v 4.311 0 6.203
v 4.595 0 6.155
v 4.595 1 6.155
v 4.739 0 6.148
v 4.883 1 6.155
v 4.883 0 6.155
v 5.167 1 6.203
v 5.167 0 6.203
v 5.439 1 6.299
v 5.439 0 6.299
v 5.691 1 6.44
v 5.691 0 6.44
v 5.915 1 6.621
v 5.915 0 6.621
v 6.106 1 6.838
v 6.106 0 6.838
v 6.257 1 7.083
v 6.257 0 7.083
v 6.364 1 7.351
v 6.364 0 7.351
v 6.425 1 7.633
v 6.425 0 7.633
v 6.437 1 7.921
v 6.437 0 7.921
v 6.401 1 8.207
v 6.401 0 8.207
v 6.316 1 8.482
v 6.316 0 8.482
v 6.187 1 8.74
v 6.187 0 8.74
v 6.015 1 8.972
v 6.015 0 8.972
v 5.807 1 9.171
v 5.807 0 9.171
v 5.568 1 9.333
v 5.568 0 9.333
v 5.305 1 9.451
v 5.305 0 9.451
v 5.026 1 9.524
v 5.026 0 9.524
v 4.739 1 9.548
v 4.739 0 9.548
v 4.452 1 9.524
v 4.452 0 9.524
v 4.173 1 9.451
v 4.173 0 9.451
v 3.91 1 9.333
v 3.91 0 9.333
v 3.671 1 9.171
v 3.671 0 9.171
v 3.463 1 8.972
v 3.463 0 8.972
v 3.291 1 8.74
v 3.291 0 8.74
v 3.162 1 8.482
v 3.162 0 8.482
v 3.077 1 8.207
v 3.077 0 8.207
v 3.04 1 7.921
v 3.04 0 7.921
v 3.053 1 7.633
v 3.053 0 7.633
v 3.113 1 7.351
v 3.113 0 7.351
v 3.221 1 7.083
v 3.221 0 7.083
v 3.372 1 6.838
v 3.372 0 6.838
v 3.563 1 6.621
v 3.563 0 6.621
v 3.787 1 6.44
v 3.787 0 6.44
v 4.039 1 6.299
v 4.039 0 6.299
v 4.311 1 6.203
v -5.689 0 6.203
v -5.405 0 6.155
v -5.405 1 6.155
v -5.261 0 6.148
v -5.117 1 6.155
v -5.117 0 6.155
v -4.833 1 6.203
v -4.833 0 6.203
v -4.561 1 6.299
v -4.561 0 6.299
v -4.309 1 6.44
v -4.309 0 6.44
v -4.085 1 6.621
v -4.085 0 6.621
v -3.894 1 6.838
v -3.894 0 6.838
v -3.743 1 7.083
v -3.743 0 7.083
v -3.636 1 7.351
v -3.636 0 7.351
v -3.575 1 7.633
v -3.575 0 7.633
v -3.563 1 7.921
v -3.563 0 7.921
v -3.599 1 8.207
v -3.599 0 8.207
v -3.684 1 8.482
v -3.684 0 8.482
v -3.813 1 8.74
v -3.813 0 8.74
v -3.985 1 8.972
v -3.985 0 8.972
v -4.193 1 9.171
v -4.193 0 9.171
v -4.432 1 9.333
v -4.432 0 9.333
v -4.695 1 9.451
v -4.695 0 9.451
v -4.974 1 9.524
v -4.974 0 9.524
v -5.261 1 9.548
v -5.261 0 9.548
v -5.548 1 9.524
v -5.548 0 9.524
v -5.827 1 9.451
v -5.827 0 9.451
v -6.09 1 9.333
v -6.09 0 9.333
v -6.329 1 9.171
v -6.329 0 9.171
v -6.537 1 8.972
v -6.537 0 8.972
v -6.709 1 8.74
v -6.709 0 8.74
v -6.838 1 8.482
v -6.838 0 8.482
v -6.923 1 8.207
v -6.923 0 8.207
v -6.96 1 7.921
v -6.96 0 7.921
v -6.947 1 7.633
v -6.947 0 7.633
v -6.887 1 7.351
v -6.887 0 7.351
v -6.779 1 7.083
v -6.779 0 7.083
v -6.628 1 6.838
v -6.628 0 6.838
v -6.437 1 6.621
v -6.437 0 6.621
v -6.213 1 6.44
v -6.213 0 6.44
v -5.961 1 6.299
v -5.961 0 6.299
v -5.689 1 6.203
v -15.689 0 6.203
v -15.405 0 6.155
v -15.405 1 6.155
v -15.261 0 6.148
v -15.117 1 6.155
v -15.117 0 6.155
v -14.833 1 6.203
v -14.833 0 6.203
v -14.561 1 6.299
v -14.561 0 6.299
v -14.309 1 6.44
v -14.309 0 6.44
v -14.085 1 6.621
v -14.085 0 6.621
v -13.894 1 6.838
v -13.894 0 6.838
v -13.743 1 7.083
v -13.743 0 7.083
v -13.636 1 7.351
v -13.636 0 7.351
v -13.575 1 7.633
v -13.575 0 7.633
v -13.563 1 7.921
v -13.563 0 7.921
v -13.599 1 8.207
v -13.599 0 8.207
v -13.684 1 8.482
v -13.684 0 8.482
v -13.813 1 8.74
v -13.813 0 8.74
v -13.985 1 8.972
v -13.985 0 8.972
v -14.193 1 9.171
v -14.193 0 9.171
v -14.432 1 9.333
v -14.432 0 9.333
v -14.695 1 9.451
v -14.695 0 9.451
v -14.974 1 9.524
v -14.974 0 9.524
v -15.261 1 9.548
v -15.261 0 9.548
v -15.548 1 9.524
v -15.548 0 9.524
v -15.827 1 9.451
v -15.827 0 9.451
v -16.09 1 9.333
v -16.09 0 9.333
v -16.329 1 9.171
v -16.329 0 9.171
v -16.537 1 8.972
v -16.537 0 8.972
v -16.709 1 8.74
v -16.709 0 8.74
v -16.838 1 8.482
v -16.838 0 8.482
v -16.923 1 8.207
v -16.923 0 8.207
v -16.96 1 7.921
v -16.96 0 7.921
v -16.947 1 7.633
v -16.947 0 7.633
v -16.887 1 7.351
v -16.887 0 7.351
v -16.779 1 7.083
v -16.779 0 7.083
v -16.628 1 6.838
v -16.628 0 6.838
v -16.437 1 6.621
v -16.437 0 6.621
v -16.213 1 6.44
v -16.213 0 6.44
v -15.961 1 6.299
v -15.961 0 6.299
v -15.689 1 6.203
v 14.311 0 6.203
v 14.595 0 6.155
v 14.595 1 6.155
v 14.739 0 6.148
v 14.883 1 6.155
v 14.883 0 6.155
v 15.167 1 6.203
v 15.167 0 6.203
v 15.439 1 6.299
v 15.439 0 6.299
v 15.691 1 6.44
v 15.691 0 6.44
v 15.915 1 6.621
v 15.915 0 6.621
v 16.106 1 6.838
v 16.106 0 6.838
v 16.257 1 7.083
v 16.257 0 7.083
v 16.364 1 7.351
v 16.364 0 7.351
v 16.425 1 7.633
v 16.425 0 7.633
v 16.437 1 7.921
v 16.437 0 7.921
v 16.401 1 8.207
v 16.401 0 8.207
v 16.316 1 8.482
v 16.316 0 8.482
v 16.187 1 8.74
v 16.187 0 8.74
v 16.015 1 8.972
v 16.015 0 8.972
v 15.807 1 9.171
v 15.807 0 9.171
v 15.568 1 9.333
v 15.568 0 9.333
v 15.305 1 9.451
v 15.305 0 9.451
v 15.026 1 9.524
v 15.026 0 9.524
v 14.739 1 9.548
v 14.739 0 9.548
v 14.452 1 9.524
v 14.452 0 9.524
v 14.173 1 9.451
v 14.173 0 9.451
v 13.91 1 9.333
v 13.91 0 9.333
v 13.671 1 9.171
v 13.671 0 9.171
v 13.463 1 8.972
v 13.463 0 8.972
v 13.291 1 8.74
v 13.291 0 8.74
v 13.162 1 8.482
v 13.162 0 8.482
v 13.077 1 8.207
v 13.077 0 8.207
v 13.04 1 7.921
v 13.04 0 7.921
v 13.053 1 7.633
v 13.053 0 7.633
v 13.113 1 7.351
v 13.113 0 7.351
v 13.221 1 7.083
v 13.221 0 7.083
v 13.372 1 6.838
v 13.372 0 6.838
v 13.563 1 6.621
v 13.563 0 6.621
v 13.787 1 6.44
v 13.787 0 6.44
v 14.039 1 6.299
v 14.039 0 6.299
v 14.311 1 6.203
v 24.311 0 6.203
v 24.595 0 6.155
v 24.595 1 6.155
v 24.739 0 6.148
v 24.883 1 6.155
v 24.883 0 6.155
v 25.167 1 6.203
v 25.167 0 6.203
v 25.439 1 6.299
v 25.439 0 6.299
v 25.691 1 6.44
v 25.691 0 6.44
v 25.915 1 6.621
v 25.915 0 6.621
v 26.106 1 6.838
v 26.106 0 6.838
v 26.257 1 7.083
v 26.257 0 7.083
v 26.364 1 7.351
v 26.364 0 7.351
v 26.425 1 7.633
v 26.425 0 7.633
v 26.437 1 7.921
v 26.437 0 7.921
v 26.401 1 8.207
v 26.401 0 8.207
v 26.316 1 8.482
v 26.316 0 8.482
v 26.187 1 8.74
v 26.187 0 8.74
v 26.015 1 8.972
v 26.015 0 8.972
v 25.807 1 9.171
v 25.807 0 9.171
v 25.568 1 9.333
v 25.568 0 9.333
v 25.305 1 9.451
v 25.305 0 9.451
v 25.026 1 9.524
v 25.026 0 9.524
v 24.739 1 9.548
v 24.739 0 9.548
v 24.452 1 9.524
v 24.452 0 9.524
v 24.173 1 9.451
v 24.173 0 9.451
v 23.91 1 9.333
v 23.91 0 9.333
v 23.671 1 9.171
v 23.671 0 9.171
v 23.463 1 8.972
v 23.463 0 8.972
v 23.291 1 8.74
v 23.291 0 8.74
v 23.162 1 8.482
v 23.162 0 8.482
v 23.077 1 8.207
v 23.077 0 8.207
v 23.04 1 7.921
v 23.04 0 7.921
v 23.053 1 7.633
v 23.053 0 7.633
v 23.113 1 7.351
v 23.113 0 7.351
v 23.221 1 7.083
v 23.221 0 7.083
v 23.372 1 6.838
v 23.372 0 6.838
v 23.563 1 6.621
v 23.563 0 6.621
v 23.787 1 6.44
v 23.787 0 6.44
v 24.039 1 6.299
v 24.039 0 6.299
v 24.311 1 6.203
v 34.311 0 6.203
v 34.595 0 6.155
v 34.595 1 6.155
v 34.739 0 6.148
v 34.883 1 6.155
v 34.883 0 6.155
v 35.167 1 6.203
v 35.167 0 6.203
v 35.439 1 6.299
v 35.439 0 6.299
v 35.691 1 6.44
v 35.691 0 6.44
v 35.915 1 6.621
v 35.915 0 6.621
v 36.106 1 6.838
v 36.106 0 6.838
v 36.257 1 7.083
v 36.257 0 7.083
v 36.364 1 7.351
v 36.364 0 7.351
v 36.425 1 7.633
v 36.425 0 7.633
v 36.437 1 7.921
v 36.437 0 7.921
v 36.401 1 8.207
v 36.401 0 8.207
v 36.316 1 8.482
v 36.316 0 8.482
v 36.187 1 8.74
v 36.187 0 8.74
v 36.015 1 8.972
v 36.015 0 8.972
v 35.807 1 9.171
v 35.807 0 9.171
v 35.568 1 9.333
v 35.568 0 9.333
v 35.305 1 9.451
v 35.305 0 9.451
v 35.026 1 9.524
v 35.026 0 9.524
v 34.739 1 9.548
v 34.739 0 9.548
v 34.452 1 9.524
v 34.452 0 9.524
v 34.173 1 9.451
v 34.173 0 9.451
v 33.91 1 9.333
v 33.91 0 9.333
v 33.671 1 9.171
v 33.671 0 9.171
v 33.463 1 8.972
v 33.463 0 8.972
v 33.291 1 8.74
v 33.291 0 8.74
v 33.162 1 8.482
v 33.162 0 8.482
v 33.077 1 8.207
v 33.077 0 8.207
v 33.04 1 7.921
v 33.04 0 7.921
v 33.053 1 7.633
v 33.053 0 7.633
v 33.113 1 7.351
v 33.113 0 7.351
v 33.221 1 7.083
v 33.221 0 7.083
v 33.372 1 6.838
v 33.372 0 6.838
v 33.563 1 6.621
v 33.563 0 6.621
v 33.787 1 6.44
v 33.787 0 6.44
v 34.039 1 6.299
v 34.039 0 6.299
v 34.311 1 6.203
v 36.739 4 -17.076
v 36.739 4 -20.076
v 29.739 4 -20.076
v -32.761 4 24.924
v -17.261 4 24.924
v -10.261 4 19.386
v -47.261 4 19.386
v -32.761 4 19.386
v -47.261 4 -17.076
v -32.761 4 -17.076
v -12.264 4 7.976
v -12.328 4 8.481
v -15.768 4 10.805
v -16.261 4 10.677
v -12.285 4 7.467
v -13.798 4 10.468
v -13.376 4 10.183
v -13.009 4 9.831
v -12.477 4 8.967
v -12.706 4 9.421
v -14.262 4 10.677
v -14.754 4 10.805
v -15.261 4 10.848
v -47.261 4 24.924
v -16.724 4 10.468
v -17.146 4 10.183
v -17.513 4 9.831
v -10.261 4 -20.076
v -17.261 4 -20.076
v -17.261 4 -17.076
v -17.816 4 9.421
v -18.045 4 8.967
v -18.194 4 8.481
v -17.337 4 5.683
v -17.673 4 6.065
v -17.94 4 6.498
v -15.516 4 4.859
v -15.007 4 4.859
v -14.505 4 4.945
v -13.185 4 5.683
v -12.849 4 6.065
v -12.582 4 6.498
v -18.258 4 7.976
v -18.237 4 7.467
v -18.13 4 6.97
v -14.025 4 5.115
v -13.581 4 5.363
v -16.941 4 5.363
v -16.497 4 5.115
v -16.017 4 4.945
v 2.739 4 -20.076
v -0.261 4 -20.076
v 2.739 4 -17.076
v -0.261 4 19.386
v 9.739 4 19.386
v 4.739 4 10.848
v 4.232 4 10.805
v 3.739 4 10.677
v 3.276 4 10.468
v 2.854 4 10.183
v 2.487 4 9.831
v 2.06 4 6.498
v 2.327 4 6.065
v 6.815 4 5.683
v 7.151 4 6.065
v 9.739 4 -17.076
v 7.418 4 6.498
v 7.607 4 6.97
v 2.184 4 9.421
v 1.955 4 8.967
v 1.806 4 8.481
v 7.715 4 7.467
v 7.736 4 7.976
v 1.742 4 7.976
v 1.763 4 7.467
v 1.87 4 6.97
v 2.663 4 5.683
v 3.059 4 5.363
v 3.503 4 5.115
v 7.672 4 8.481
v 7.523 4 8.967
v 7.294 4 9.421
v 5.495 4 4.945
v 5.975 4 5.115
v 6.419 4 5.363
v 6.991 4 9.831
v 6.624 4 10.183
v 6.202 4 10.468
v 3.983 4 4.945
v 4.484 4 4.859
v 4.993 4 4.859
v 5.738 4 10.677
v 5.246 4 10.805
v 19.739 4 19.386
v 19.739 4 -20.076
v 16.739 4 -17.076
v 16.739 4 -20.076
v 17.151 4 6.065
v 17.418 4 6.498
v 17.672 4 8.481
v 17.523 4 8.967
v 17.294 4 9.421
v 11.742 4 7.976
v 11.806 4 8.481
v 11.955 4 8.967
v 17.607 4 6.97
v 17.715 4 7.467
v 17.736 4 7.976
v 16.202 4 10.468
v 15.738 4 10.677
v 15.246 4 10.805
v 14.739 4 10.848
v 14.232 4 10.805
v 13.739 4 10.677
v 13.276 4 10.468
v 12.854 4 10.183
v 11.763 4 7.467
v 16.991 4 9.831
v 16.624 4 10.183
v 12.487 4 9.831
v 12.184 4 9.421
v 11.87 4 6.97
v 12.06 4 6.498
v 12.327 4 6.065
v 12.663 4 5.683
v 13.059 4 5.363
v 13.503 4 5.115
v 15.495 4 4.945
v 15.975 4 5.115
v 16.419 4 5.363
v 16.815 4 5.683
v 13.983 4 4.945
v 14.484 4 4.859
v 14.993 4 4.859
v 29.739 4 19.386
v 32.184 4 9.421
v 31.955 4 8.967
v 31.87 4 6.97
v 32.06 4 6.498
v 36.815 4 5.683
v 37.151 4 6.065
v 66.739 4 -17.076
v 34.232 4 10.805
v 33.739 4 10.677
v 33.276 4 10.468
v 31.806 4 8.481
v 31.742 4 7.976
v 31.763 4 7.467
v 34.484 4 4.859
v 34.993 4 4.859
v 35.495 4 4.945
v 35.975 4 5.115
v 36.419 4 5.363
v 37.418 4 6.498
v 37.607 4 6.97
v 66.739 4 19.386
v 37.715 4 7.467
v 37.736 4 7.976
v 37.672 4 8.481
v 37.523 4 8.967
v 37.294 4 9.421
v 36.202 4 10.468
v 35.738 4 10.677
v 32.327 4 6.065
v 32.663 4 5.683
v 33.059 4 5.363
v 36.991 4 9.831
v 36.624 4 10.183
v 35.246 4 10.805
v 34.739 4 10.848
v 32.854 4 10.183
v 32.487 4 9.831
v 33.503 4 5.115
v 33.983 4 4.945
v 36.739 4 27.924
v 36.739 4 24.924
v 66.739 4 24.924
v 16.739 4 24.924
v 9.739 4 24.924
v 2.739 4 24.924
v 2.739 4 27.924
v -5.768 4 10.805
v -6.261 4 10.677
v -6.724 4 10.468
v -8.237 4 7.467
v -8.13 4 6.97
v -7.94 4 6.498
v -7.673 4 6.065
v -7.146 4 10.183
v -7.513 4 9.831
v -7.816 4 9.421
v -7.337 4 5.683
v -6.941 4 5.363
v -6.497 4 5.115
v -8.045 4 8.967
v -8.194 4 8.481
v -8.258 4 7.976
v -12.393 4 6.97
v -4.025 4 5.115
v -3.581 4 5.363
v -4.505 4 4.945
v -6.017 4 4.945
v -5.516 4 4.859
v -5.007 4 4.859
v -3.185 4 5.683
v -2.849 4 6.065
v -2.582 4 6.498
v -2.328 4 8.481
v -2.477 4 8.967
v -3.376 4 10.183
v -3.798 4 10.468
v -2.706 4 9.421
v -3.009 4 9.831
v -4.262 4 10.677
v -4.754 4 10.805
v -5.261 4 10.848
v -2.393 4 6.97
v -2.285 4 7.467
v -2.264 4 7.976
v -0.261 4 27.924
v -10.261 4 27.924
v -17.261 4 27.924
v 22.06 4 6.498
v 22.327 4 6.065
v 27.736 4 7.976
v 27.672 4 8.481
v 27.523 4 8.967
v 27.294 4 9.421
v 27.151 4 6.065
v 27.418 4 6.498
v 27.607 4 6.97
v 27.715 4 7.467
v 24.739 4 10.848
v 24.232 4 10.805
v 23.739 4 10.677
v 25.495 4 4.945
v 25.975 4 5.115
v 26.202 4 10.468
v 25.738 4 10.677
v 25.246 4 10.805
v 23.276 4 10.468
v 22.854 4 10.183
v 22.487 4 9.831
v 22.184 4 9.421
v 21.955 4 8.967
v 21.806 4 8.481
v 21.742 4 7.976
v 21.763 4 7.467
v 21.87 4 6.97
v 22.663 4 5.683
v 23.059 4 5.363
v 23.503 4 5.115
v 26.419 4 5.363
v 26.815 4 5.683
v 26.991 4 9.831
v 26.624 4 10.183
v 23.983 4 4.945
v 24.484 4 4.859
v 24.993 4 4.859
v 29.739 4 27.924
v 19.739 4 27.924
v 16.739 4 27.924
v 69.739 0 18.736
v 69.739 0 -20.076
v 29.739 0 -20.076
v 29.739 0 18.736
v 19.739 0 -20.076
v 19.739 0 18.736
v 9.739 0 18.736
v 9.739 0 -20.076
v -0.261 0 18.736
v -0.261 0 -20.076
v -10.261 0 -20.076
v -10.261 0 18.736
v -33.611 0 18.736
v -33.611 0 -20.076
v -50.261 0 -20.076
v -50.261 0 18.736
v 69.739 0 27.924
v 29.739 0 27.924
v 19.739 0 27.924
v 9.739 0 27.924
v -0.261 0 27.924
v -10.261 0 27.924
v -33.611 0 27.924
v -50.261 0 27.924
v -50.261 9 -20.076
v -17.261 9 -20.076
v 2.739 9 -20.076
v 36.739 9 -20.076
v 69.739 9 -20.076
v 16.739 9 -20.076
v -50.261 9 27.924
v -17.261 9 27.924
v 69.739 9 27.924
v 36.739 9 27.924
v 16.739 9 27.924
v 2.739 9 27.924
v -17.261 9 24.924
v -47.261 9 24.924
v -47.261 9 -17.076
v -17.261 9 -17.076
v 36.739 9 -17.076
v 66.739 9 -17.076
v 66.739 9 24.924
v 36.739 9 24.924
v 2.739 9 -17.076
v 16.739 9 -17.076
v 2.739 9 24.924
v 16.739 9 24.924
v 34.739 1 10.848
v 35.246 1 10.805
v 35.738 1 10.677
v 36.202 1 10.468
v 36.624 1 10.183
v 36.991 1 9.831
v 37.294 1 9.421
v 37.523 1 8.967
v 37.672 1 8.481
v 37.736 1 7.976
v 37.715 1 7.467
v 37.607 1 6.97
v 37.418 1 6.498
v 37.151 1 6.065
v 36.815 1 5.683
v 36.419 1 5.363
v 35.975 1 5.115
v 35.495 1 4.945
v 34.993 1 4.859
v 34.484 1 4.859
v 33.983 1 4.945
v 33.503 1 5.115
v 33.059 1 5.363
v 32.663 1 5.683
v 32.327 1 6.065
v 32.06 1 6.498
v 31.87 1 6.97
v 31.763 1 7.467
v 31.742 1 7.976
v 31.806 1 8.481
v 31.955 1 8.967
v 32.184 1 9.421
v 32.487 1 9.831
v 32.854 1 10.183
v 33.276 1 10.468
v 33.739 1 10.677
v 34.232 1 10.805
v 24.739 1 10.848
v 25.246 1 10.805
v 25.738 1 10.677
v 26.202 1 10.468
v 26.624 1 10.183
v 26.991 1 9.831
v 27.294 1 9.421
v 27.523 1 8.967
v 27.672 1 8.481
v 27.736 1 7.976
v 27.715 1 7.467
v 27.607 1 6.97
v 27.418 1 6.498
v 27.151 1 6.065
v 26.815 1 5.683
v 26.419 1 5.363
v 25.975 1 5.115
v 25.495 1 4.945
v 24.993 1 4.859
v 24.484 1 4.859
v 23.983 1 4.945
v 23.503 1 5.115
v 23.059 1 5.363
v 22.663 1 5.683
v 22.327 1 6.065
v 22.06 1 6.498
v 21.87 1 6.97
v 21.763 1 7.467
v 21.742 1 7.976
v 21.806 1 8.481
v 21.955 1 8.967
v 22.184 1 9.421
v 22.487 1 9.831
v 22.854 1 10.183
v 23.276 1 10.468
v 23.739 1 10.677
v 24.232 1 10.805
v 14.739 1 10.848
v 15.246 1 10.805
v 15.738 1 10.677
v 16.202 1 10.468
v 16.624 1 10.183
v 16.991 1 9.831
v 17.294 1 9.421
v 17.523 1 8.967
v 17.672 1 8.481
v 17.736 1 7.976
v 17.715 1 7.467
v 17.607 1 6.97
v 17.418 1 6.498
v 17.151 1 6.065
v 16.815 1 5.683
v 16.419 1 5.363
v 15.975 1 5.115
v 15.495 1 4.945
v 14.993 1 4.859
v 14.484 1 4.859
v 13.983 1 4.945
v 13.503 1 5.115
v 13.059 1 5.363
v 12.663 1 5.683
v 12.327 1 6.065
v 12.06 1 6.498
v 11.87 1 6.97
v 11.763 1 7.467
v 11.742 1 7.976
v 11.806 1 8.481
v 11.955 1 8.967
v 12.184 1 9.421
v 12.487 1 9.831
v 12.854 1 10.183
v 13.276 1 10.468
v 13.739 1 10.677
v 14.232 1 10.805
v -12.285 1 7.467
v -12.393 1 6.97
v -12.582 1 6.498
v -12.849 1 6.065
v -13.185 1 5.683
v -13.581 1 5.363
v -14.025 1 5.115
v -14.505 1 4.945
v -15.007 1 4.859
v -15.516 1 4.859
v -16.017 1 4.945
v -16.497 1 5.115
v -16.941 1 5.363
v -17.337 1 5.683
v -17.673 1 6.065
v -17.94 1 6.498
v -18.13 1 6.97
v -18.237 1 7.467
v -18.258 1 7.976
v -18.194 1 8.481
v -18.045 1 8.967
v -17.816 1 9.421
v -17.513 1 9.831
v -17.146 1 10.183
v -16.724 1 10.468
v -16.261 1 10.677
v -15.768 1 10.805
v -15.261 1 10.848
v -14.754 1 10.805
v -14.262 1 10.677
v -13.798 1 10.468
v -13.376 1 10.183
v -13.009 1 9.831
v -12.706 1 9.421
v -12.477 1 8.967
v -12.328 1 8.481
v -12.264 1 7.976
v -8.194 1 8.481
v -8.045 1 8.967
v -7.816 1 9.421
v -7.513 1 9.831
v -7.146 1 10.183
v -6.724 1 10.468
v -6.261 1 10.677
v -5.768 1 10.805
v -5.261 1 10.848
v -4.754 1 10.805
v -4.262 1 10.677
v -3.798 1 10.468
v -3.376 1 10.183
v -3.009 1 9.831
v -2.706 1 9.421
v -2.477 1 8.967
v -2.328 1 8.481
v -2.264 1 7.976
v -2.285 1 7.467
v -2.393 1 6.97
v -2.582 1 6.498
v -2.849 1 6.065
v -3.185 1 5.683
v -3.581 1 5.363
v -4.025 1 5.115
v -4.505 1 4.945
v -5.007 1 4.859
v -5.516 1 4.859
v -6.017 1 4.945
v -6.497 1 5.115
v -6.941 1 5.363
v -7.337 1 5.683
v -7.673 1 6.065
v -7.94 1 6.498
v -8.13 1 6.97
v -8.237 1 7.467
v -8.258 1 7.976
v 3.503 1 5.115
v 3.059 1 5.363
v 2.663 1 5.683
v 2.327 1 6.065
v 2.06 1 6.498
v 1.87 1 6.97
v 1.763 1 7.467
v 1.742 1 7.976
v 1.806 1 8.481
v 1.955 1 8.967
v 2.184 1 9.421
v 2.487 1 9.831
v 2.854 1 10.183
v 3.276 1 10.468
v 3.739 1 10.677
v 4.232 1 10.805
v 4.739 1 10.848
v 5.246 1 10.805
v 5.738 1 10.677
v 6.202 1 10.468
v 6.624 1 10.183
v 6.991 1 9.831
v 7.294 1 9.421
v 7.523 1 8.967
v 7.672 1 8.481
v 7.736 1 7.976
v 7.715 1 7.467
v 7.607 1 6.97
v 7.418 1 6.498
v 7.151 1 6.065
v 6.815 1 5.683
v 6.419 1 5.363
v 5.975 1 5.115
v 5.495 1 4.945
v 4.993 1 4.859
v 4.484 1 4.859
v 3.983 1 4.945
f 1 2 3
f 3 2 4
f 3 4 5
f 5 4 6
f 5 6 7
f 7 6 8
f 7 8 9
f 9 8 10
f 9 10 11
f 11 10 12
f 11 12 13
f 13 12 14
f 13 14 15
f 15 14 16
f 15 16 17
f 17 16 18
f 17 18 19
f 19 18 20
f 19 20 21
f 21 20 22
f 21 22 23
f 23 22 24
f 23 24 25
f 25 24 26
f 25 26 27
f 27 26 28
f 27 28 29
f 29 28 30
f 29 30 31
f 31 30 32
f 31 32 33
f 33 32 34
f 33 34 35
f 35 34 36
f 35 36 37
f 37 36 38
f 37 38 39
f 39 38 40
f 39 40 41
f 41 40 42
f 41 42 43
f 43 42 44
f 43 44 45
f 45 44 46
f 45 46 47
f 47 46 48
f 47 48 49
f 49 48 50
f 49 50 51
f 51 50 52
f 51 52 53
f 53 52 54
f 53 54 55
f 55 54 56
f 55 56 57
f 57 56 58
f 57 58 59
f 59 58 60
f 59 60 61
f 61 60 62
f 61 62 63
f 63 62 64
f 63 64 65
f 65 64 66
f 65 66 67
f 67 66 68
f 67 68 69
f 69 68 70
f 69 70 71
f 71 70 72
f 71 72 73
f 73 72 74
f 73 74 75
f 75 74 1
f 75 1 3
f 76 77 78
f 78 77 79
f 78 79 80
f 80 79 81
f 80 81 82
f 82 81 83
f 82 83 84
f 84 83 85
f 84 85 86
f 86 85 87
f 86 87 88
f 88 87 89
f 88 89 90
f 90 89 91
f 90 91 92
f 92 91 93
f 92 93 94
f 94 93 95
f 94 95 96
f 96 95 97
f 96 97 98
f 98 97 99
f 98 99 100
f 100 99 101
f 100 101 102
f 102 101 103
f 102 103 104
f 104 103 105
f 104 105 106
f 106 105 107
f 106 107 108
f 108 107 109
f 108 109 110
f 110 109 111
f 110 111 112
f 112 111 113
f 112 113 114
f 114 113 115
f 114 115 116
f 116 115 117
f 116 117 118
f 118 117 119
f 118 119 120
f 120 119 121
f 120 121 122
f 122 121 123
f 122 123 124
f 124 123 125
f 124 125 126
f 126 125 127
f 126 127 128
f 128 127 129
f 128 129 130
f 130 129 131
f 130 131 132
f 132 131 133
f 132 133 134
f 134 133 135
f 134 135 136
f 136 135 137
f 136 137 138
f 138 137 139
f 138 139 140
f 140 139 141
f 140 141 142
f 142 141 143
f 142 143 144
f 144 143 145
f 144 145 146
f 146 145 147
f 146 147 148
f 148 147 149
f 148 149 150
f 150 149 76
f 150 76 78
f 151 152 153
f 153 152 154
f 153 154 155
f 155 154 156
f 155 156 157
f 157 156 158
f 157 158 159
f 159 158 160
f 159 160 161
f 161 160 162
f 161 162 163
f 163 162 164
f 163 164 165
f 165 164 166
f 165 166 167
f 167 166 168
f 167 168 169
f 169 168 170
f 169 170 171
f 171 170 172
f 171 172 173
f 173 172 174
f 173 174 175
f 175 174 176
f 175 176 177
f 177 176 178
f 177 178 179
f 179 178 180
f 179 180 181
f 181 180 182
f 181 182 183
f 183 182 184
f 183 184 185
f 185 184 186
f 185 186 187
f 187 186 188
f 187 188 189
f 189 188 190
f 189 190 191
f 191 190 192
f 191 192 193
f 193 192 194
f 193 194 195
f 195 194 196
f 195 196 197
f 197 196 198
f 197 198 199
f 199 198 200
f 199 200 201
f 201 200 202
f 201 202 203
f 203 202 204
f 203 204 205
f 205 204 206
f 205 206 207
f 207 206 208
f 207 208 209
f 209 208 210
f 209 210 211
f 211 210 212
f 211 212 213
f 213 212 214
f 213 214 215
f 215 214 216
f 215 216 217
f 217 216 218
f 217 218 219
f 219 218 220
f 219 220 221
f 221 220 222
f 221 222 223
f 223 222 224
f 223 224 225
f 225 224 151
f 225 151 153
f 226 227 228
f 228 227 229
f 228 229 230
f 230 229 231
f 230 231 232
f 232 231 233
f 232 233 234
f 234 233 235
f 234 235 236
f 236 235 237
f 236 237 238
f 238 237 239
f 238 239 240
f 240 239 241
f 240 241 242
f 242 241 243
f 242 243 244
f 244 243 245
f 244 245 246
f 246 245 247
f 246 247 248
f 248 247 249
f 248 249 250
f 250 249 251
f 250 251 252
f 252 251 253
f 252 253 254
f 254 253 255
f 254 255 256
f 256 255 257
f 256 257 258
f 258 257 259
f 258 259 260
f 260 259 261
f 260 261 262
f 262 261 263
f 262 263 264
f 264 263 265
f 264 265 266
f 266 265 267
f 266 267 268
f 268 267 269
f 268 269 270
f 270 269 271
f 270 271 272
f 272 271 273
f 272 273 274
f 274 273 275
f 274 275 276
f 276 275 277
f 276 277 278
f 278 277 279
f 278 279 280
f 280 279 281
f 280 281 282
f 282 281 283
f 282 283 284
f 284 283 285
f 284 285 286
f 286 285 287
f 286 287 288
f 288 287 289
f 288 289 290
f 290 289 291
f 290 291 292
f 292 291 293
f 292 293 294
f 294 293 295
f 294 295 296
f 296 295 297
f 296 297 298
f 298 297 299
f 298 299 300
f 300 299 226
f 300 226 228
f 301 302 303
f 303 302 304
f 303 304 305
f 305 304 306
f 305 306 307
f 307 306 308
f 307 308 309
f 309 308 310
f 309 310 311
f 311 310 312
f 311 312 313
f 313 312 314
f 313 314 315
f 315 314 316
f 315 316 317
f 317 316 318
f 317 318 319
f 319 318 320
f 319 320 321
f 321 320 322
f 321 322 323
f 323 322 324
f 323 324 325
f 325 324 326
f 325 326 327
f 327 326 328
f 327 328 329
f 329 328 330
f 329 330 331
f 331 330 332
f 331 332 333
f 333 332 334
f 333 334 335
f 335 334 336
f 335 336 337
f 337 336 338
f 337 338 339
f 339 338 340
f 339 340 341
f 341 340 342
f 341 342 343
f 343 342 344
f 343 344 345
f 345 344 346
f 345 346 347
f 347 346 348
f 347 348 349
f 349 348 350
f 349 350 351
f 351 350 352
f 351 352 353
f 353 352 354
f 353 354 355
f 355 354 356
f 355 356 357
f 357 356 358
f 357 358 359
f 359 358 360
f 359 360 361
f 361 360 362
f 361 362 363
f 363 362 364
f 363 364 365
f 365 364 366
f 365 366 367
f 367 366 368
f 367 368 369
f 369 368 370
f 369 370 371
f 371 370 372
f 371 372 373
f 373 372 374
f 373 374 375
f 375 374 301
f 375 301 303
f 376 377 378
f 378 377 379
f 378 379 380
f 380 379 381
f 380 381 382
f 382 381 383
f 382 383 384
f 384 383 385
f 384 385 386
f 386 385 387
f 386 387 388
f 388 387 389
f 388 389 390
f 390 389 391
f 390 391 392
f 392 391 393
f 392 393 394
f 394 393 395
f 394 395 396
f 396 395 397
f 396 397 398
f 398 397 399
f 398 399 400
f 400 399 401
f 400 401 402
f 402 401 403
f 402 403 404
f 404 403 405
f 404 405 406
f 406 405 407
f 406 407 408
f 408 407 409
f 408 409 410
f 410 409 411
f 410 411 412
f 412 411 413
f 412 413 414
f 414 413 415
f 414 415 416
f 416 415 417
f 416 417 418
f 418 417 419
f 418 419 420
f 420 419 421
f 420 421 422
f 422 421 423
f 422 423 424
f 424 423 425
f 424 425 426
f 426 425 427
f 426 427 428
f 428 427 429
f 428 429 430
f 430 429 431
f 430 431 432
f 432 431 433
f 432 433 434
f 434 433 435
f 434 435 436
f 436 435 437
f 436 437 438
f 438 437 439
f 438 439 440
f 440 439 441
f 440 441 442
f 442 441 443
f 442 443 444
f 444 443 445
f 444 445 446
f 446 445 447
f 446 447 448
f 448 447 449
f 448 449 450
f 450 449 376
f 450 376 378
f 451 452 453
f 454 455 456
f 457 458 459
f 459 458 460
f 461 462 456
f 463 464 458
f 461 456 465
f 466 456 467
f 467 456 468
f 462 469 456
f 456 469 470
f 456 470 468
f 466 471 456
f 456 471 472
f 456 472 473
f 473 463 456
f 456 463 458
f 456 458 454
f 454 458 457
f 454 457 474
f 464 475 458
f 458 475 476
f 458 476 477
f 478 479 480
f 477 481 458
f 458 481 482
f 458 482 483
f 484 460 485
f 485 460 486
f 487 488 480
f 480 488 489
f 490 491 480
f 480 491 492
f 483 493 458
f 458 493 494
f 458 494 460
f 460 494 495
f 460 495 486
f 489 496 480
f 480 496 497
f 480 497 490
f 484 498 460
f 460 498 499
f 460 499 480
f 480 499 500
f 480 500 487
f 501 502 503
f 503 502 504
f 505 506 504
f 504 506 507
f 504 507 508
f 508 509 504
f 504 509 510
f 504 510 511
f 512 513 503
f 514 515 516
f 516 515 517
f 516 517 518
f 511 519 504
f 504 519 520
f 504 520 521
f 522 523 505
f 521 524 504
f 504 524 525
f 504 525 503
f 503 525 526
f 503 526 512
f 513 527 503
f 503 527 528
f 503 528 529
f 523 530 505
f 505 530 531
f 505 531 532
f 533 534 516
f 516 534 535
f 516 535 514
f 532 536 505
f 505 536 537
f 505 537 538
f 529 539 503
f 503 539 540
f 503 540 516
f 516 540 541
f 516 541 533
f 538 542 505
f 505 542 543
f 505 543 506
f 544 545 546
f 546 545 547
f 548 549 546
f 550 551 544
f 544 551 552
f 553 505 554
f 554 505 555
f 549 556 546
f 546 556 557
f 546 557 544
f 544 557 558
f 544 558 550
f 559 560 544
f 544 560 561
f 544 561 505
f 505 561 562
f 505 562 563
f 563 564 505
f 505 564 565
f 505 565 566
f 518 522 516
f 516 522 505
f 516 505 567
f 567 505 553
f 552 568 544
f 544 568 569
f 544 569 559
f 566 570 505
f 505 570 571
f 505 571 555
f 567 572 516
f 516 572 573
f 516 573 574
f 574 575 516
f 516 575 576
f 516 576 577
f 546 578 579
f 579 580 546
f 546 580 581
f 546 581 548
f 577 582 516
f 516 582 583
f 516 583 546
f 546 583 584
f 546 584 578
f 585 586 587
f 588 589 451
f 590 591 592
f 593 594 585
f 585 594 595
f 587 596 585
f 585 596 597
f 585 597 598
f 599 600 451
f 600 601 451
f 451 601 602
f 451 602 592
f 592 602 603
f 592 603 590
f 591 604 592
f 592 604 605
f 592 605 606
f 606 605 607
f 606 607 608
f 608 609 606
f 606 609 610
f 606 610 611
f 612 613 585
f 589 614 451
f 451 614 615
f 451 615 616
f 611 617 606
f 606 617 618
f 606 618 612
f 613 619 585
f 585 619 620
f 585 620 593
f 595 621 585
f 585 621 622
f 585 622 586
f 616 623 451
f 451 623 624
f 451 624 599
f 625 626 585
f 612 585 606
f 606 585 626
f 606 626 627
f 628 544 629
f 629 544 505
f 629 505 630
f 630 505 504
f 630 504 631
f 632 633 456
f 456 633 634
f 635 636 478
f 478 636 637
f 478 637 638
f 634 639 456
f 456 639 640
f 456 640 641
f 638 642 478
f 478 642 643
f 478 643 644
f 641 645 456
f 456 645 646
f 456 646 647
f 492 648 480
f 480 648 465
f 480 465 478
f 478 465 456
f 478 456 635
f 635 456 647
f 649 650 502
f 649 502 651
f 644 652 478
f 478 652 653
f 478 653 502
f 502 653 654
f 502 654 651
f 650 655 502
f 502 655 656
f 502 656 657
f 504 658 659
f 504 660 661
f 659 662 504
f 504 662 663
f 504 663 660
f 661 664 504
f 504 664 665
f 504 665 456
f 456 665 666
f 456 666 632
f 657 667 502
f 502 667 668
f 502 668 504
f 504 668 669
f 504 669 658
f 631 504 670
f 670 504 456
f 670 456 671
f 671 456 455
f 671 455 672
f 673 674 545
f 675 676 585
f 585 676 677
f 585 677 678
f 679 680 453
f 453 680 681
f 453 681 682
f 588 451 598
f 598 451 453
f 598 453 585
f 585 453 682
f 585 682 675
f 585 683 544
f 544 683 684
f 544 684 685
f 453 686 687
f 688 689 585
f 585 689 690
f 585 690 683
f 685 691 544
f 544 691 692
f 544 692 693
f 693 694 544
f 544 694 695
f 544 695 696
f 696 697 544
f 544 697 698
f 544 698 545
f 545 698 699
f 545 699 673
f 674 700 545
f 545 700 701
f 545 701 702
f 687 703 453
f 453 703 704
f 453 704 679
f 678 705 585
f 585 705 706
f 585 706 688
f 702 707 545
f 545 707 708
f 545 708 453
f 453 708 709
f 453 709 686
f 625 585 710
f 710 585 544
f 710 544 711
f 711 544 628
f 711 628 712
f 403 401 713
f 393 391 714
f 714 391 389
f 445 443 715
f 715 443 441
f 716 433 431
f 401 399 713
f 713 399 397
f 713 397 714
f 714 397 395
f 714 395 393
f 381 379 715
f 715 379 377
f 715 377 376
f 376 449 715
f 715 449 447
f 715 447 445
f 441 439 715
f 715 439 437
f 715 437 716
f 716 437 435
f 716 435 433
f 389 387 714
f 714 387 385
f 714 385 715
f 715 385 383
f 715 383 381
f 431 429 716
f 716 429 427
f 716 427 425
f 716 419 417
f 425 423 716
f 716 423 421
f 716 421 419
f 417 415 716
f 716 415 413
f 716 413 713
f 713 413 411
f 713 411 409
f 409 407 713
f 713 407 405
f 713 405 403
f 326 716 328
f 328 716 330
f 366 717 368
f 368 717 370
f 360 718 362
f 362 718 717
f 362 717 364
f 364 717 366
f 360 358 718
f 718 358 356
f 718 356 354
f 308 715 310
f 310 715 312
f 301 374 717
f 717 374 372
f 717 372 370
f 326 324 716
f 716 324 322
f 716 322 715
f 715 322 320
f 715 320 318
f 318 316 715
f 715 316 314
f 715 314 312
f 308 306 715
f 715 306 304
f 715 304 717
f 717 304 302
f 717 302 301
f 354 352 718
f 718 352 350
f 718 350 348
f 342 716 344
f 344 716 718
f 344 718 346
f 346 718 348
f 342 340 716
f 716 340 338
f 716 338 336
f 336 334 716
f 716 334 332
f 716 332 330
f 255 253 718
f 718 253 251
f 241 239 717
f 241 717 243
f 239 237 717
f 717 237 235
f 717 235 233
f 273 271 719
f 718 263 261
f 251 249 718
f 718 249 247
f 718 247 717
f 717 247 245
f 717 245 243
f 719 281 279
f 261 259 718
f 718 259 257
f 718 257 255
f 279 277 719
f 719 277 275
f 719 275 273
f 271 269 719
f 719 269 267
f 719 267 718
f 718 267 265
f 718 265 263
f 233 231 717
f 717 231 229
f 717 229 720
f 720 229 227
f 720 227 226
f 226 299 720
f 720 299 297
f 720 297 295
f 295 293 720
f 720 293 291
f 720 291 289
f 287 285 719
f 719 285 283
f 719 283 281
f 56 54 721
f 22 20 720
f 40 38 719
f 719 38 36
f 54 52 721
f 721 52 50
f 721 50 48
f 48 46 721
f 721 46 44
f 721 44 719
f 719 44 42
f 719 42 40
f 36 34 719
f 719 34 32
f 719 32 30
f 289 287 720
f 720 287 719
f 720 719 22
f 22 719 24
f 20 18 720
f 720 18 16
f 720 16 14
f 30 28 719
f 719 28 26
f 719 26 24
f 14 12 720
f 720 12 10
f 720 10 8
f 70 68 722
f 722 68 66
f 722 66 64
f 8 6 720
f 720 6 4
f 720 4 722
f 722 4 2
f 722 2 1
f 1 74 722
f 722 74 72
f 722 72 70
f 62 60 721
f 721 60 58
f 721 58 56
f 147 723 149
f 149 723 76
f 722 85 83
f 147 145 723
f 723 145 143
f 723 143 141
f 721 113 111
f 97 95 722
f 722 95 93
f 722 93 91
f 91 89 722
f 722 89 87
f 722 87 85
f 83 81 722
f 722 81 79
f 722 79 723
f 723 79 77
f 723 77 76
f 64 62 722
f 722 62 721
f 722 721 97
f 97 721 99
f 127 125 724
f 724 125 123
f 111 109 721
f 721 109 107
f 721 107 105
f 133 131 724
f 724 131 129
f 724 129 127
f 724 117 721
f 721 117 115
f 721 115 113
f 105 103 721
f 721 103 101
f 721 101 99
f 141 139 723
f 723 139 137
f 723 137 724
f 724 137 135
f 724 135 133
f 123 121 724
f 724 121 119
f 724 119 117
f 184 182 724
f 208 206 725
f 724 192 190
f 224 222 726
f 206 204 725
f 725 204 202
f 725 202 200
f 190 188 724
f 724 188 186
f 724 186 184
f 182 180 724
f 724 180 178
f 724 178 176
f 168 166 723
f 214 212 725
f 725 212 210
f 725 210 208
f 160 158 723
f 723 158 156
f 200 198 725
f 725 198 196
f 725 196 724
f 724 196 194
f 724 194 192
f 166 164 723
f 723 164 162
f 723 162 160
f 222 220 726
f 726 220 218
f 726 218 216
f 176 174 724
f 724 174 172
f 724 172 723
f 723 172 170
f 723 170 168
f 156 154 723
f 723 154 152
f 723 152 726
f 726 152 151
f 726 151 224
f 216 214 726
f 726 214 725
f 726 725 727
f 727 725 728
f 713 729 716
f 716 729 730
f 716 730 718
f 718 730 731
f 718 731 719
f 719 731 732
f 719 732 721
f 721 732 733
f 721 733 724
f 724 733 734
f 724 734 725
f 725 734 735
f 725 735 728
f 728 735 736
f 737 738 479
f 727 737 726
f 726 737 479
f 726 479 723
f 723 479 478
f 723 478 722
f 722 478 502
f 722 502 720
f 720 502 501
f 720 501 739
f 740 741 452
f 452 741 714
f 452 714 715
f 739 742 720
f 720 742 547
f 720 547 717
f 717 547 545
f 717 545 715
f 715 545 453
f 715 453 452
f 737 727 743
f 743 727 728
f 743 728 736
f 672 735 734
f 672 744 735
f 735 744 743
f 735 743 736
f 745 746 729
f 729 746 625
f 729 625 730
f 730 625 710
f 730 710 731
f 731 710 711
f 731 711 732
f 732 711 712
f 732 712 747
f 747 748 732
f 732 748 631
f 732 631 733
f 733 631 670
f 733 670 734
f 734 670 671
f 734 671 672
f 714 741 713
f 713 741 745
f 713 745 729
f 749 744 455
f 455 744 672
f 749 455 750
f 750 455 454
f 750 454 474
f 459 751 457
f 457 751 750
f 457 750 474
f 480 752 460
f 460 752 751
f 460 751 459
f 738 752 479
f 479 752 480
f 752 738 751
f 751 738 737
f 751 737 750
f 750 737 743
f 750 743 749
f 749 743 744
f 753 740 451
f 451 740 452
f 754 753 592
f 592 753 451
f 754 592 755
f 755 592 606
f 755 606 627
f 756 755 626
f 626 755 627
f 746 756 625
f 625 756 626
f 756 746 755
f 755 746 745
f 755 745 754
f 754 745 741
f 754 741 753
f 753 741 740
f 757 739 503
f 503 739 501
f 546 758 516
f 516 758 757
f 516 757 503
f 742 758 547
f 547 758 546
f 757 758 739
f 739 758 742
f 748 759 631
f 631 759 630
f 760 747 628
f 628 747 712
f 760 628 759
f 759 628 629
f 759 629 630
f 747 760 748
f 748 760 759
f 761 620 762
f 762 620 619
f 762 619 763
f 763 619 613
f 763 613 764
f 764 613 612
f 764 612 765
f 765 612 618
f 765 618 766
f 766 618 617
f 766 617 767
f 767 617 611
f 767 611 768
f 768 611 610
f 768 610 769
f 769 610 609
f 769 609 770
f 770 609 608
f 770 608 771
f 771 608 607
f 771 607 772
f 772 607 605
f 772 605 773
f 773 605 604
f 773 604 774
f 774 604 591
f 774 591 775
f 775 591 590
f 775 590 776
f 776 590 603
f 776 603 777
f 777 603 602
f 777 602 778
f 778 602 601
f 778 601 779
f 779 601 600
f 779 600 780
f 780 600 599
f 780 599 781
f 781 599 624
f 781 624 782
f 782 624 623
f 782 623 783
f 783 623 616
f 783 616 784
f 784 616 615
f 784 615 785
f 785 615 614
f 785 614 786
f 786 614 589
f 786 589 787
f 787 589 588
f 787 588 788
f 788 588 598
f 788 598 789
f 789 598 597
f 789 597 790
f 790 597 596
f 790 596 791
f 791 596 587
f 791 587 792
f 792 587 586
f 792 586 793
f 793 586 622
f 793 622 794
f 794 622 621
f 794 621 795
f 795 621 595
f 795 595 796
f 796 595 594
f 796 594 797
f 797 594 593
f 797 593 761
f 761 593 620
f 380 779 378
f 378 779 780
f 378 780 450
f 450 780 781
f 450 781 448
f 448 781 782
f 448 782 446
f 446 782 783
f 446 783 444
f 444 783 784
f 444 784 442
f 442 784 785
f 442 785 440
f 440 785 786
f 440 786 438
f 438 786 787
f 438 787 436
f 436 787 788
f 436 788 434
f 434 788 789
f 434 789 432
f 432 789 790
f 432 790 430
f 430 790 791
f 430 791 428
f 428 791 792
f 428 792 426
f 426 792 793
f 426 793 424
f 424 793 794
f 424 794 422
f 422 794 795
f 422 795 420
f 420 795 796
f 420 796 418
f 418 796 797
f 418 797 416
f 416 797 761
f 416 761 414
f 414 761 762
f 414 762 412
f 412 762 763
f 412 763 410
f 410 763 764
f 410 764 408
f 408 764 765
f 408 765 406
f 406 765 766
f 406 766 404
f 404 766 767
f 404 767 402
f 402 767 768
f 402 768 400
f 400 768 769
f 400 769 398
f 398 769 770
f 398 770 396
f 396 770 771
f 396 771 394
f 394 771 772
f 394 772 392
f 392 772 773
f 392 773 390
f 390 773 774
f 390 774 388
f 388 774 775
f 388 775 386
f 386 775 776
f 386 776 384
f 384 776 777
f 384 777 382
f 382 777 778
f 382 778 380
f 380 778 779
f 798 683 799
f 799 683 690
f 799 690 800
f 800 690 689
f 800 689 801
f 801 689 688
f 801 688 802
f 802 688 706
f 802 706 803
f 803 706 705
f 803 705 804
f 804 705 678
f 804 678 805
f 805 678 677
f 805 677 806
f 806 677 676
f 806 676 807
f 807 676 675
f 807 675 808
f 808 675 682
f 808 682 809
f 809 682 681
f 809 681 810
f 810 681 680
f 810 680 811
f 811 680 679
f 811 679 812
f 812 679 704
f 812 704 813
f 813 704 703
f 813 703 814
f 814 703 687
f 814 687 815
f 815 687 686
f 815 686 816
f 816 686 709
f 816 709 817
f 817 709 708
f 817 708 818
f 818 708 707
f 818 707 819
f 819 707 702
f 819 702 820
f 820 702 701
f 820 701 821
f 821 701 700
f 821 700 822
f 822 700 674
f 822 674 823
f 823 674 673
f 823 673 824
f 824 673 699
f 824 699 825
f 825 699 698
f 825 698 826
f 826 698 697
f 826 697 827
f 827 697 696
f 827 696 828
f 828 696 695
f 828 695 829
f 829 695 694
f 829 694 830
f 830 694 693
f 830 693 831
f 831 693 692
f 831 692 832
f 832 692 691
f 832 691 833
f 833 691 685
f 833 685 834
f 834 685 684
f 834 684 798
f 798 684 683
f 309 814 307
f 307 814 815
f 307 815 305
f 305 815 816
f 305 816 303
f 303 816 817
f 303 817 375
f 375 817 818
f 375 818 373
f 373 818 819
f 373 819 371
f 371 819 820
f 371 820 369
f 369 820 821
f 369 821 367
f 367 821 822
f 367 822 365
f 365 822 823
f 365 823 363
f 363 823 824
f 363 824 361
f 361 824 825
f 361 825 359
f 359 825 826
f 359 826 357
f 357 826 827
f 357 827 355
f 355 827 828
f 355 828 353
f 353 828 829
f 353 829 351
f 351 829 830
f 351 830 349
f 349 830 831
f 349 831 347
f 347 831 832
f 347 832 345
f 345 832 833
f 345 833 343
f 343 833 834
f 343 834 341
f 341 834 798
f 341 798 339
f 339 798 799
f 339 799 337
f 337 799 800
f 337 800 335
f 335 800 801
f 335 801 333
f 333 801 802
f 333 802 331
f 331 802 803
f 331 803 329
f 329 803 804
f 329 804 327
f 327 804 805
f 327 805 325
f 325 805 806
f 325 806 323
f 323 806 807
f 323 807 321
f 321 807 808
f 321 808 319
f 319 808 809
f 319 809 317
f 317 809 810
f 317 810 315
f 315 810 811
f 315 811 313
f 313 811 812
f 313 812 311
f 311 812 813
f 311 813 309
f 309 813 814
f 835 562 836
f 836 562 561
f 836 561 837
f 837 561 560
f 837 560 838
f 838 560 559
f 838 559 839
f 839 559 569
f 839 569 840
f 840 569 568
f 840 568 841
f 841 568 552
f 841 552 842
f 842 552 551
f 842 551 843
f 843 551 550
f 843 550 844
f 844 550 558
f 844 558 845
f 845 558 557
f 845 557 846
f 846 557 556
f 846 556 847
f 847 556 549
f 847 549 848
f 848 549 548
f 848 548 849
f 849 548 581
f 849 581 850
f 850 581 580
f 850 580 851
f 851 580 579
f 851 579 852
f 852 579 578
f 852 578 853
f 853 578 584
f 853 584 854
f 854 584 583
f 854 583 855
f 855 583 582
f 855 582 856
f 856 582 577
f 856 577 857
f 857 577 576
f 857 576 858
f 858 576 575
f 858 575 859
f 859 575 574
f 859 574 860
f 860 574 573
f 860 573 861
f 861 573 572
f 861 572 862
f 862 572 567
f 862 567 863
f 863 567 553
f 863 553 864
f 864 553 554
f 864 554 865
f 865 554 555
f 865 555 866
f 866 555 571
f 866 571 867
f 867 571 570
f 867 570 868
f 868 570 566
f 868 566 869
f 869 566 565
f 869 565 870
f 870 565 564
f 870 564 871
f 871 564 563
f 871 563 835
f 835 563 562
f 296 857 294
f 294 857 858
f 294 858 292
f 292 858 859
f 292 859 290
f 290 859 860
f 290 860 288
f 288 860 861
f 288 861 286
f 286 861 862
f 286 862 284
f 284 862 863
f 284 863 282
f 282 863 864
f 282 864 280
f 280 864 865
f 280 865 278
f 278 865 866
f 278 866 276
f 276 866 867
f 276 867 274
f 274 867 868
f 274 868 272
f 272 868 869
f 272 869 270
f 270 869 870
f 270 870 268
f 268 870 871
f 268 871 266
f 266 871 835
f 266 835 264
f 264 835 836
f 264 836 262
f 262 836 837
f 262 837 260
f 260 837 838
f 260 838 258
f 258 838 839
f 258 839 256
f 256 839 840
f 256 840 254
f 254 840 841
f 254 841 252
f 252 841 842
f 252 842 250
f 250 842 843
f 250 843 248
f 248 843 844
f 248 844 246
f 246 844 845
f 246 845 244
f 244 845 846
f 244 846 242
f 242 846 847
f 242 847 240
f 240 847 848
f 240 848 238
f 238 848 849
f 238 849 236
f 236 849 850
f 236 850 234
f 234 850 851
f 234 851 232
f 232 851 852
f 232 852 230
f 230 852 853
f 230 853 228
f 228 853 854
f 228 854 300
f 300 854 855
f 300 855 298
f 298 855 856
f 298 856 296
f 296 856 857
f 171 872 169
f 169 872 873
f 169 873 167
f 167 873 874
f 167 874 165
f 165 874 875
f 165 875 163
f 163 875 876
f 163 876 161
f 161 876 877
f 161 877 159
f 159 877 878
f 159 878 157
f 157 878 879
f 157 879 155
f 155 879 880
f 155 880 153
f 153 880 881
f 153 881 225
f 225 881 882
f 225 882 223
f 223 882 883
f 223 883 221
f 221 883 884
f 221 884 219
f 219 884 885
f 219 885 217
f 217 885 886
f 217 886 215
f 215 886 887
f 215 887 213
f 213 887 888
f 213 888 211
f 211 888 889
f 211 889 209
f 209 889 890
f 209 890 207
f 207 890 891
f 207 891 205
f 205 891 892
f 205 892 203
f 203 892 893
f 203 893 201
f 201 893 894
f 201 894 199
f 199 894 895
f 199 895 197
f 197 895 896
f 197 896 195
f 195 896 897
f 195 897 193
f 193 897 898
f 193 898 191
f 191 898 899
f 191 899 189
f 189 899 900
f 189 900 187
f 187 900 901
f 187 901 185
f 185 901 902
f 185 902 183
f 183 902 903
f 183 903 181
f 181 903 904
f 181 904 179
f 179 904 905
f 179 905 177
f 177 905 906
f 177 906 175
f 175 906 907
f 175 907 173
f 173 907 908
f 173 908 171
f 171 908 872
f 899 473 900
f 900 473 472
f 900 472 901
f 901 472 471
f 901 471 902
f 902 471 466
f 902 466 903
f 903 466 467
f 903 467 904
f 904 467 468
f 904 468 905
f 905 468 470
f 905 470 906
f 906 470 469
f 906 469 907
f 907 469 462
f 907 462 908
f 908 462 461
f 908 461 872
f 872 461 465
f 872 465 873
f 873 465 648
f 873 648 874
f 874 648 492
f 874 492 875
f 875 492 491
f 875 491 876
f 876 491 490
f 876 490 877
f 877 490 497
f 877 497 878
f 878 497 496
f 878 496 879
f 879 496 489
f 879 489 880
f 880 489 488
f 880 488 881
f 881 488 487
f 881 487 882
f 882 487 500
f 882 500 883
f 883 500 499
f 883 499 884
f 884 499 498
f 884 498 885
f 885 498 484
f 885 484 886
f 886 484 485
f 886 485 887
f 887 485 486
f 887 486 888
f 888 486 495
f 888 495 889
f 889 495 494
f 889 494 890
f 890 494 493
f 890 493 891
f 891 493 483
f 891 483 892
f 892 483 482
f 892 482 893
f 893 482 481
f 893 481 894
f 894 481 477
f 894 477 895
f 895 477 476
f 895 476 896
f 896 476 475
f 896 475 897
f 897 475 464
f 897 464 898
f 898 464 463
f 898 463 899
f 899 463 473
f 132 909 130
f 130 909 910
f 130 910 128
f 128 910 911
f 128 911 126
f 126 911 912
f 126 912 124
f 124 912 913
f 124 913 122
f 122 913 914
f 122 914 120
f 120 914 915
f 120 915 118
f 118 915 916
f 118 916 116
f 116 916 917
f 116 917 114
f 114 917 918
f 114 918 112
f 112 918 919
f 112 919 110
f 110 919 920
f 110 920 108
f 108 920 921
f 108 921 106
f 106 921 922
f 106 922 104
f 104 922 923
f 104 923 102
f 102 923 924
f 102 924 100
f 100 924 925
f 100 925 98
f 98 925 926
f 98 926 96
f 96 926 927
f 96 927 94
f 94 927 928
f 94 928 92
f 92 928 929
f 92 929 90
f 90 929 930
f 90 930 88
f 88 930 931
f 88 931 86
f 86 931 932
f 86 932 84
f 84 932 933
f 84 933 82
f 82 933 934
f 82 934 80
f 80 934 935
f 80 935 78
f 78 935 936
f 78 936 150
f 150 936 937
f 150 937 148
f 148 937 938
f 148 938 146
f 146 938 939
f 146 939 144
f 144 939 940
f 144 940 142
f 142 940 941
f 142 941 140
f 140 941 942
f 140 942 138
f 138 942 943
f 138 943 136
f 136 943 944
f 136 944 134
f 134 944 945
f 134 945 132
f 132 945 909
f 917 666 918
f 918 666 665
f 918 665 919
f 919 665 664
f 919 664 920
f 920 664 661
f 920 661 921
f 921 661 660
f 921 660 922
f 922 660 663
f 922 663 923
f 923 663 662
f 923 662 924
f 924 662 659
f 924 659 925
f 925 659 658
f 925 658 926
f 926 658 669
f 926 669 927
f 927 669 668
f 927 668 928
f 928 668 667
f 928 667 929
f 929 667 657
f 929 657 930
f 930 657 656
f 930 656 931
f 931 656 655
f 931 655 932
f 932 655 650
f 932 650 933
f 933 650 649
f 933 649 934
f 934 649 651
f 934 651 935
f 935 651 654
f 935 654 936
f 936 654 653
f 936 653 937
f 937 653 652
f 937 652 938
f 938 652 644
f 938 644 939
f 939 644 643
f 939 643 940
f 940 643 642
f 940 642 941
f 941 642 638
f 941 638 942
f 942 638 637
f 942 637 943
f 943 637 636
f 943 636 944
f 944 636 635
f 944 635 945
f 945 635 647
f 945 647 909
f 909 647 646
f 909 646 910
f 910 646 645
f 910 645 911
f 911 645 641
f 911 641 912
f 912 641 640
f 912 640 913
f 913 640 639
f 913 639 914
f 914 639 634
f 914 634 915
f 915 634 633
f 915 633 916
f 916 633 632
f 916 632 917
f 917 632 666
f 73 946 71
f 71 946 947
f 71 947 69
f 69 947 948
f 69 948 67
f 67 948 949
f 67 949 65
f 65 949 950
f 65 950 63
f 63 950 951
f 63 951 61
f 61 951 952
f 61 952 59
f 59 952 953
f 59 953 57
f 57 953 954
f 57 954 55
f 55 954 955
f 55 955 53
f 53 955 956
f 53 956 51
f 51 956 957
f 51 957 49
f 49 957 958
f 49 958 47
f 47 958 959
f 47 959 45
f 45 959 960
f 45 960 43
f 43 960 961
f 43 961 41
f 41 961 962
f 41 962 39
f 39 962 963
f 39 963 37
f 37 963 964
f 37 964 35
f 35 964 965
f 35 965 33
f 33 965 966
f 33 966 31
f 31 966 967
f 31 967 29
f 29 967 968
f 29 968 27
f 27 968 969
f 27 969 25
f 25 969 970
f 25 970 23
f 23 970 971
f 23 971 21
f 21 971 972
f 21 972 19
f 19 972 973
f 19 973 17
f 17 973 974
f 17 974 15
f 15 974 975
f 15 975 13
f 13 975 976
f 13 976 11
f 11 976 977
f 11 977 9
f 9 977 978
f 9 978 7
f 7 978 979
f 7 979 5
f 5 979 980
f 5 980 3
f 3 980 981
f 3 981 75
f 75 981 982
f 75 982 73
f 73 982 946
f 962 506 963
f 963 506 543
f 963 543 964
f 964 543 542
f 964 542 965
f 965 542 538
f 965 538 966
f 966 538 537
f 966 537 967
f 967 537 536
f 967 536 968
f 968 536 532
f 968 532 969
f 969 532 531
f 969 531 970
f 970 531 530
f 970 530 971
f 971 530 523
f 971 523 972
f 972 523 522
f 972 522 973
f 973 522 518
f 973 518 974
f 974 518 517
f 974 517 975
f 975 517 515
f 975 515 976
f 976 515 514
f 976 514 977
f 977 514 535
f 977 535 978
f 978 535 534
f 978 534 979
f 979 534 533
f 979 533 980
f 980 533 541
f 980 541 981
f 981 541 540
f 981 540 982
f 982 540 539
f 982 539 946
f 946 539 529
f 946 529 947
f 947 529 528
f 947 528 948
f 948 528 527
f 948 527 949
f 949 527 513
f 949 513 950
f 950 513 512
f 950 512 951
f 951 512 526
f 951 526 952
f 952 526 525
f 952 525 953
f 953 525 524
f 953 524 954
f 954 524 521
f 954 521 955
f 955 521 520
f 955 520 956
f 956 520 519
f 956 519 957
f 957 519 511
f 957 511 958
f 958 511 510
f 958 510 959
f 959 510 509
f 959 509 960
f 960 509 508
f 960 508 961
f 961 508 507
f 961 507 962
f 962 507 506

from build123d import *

# Parameters (mm, degrees)
SKETCH1_W           = 120
SKETCH1_H           = 48
BOSS_EXTRUDE1_DEPTH = 4
SKETCH2_W           = 14
SKETCH2_H           = 3
BOSS_EXTRUDE2_DEPTH = 5
SKETCH3_R           = 1.7
CUT_EXTRUDE1_DEPTH  = 5
SKETCH4_R           = 3
CUT_EXTRUDE2_DEPTH  = 3


with BuildPart() as part:
    # Sketch1 → Boss-Extrude1 (new body)
    with BuildSketch(Plane(origin=(0, 0, 0), x_dir=(1, 0, 0), z_dir=(0, 1, 0))):
        with Locations((9.738916256, -3.92364532)):
            Rectangle(SKETCH1_W, SKETCH1_H)
    extrude(amount=BOSS_EXTRUDE1_DEPTH)

    # Sketch2 → Boss-Extrude2 (add)
    with BuildSketch(Plane(origin=(0, 4, 0), x_dir=(1, 0, 0), z_dir=(0, 1, 0))):
        Polygon((-50.261083744, 20.07635468), (-17.261083744, 20.07635468), (-17.261083744, 17.07635468), (-47.261083744, 17.07635468), (-47.261083744, -24.92364532), (-17.261083744, -24.92364532), (-17.261083744, -27.92364532), (-50.261083744, -27.92364532), align=None)
        Polygon((69.738916256, 20.07635468), (69.738916256, -27.92364532), (36.738916256, -27.92364532), (36.738916256, -24.92364532), (66.738916256, -24.92364532), (66.738916256, 17.07635468), (36.738916256, 17.07635468), (36.738916256, 20.07635468), align=None)
        with Locations((9.738916256, 18.57635468)):
            Rectangle(SKETCH2_W, SKETCH2_H)
        with Locations((9.738916256, -26.42364532)):
            Rectangle(SKETCH2_W, SKETCH2_H)
    extrude(amount=BOSS_EXTRUDE2_DEPTH)

    # Sketch3 → Cut-Extrude1 (cut)
    with BuildSketch(Plane(origin=(0, 4, 0), x_dir=(1, 0, 0), z_dir=(0, 1, 0))):
        with Locations(Location((4.738916256, -7.848492391, 0), (0, 0, 270))):
            Circle(SKETCH3_R)
        with Locations(Location((-5.261083744, -7.848492391, 0), (0, 0, 270))):
            Circle(SKETCH3_R)
        with Locations(Location((-15.261083744, -7.848492391, 0), (0, 0, 270))):
            Circle(SKETCH3_R)
        with Locations(Location((34.738916256, -7.848492391, 0), (0, 0, 90))):
            Circle(SKETCH3_R)
        with Locations(Location((24.738916256, -7.848492391, 0), (0, 0, 90))):
            Circle(SKETCH3_R)
        with Locations(Location((14.738916256, -7.848492391, 0), (0, 0, 90))):
            Circle(SKETCH3_R)
    extrude(amount=-CUT_EXTRUDE1_DEPTH, mode=Mode.SUBTRACT)

    # Sketch4 → Cut-Extrude2 (cut)
    with BuildSketch(Plane(origin=(0, 4, 0), x_dir=(1, 0, 0), z_dir=(0, 1, 0))):
        with Locations(Location((-15.261083744, -7.848492391, 0), (0, 0, 270))):
            Circle(SKETCH4_R)
        with Locations(Location((-5.261083744, -7.848492391, 0), (0, 0, 270))):
            Circle(SKETCH4_R)
        with Locations(Location((4.738916256, -7.848492391, 0), (0, 0, 270))):
            Circle(SKETCH4_R)
        with Locations(Location((14.738916256, -7.848492391, 0), (0, 0, 270))):
            Circle(SKETCH4_R)
        with Locations(Location((24.738916256, -7.848492391, 0), (0, 0, 270))):
            Circle(SKETCH4_R)
        with Locations(Location((34.738916256, -7.848492391, 0), (0, 0, 270))):
            Circle(SKETCH4_R)
    extrude(amount=-CUT_EXTRUDE2_DEPTH, mode=Mode.SUBTRACT)


solid = part.part
